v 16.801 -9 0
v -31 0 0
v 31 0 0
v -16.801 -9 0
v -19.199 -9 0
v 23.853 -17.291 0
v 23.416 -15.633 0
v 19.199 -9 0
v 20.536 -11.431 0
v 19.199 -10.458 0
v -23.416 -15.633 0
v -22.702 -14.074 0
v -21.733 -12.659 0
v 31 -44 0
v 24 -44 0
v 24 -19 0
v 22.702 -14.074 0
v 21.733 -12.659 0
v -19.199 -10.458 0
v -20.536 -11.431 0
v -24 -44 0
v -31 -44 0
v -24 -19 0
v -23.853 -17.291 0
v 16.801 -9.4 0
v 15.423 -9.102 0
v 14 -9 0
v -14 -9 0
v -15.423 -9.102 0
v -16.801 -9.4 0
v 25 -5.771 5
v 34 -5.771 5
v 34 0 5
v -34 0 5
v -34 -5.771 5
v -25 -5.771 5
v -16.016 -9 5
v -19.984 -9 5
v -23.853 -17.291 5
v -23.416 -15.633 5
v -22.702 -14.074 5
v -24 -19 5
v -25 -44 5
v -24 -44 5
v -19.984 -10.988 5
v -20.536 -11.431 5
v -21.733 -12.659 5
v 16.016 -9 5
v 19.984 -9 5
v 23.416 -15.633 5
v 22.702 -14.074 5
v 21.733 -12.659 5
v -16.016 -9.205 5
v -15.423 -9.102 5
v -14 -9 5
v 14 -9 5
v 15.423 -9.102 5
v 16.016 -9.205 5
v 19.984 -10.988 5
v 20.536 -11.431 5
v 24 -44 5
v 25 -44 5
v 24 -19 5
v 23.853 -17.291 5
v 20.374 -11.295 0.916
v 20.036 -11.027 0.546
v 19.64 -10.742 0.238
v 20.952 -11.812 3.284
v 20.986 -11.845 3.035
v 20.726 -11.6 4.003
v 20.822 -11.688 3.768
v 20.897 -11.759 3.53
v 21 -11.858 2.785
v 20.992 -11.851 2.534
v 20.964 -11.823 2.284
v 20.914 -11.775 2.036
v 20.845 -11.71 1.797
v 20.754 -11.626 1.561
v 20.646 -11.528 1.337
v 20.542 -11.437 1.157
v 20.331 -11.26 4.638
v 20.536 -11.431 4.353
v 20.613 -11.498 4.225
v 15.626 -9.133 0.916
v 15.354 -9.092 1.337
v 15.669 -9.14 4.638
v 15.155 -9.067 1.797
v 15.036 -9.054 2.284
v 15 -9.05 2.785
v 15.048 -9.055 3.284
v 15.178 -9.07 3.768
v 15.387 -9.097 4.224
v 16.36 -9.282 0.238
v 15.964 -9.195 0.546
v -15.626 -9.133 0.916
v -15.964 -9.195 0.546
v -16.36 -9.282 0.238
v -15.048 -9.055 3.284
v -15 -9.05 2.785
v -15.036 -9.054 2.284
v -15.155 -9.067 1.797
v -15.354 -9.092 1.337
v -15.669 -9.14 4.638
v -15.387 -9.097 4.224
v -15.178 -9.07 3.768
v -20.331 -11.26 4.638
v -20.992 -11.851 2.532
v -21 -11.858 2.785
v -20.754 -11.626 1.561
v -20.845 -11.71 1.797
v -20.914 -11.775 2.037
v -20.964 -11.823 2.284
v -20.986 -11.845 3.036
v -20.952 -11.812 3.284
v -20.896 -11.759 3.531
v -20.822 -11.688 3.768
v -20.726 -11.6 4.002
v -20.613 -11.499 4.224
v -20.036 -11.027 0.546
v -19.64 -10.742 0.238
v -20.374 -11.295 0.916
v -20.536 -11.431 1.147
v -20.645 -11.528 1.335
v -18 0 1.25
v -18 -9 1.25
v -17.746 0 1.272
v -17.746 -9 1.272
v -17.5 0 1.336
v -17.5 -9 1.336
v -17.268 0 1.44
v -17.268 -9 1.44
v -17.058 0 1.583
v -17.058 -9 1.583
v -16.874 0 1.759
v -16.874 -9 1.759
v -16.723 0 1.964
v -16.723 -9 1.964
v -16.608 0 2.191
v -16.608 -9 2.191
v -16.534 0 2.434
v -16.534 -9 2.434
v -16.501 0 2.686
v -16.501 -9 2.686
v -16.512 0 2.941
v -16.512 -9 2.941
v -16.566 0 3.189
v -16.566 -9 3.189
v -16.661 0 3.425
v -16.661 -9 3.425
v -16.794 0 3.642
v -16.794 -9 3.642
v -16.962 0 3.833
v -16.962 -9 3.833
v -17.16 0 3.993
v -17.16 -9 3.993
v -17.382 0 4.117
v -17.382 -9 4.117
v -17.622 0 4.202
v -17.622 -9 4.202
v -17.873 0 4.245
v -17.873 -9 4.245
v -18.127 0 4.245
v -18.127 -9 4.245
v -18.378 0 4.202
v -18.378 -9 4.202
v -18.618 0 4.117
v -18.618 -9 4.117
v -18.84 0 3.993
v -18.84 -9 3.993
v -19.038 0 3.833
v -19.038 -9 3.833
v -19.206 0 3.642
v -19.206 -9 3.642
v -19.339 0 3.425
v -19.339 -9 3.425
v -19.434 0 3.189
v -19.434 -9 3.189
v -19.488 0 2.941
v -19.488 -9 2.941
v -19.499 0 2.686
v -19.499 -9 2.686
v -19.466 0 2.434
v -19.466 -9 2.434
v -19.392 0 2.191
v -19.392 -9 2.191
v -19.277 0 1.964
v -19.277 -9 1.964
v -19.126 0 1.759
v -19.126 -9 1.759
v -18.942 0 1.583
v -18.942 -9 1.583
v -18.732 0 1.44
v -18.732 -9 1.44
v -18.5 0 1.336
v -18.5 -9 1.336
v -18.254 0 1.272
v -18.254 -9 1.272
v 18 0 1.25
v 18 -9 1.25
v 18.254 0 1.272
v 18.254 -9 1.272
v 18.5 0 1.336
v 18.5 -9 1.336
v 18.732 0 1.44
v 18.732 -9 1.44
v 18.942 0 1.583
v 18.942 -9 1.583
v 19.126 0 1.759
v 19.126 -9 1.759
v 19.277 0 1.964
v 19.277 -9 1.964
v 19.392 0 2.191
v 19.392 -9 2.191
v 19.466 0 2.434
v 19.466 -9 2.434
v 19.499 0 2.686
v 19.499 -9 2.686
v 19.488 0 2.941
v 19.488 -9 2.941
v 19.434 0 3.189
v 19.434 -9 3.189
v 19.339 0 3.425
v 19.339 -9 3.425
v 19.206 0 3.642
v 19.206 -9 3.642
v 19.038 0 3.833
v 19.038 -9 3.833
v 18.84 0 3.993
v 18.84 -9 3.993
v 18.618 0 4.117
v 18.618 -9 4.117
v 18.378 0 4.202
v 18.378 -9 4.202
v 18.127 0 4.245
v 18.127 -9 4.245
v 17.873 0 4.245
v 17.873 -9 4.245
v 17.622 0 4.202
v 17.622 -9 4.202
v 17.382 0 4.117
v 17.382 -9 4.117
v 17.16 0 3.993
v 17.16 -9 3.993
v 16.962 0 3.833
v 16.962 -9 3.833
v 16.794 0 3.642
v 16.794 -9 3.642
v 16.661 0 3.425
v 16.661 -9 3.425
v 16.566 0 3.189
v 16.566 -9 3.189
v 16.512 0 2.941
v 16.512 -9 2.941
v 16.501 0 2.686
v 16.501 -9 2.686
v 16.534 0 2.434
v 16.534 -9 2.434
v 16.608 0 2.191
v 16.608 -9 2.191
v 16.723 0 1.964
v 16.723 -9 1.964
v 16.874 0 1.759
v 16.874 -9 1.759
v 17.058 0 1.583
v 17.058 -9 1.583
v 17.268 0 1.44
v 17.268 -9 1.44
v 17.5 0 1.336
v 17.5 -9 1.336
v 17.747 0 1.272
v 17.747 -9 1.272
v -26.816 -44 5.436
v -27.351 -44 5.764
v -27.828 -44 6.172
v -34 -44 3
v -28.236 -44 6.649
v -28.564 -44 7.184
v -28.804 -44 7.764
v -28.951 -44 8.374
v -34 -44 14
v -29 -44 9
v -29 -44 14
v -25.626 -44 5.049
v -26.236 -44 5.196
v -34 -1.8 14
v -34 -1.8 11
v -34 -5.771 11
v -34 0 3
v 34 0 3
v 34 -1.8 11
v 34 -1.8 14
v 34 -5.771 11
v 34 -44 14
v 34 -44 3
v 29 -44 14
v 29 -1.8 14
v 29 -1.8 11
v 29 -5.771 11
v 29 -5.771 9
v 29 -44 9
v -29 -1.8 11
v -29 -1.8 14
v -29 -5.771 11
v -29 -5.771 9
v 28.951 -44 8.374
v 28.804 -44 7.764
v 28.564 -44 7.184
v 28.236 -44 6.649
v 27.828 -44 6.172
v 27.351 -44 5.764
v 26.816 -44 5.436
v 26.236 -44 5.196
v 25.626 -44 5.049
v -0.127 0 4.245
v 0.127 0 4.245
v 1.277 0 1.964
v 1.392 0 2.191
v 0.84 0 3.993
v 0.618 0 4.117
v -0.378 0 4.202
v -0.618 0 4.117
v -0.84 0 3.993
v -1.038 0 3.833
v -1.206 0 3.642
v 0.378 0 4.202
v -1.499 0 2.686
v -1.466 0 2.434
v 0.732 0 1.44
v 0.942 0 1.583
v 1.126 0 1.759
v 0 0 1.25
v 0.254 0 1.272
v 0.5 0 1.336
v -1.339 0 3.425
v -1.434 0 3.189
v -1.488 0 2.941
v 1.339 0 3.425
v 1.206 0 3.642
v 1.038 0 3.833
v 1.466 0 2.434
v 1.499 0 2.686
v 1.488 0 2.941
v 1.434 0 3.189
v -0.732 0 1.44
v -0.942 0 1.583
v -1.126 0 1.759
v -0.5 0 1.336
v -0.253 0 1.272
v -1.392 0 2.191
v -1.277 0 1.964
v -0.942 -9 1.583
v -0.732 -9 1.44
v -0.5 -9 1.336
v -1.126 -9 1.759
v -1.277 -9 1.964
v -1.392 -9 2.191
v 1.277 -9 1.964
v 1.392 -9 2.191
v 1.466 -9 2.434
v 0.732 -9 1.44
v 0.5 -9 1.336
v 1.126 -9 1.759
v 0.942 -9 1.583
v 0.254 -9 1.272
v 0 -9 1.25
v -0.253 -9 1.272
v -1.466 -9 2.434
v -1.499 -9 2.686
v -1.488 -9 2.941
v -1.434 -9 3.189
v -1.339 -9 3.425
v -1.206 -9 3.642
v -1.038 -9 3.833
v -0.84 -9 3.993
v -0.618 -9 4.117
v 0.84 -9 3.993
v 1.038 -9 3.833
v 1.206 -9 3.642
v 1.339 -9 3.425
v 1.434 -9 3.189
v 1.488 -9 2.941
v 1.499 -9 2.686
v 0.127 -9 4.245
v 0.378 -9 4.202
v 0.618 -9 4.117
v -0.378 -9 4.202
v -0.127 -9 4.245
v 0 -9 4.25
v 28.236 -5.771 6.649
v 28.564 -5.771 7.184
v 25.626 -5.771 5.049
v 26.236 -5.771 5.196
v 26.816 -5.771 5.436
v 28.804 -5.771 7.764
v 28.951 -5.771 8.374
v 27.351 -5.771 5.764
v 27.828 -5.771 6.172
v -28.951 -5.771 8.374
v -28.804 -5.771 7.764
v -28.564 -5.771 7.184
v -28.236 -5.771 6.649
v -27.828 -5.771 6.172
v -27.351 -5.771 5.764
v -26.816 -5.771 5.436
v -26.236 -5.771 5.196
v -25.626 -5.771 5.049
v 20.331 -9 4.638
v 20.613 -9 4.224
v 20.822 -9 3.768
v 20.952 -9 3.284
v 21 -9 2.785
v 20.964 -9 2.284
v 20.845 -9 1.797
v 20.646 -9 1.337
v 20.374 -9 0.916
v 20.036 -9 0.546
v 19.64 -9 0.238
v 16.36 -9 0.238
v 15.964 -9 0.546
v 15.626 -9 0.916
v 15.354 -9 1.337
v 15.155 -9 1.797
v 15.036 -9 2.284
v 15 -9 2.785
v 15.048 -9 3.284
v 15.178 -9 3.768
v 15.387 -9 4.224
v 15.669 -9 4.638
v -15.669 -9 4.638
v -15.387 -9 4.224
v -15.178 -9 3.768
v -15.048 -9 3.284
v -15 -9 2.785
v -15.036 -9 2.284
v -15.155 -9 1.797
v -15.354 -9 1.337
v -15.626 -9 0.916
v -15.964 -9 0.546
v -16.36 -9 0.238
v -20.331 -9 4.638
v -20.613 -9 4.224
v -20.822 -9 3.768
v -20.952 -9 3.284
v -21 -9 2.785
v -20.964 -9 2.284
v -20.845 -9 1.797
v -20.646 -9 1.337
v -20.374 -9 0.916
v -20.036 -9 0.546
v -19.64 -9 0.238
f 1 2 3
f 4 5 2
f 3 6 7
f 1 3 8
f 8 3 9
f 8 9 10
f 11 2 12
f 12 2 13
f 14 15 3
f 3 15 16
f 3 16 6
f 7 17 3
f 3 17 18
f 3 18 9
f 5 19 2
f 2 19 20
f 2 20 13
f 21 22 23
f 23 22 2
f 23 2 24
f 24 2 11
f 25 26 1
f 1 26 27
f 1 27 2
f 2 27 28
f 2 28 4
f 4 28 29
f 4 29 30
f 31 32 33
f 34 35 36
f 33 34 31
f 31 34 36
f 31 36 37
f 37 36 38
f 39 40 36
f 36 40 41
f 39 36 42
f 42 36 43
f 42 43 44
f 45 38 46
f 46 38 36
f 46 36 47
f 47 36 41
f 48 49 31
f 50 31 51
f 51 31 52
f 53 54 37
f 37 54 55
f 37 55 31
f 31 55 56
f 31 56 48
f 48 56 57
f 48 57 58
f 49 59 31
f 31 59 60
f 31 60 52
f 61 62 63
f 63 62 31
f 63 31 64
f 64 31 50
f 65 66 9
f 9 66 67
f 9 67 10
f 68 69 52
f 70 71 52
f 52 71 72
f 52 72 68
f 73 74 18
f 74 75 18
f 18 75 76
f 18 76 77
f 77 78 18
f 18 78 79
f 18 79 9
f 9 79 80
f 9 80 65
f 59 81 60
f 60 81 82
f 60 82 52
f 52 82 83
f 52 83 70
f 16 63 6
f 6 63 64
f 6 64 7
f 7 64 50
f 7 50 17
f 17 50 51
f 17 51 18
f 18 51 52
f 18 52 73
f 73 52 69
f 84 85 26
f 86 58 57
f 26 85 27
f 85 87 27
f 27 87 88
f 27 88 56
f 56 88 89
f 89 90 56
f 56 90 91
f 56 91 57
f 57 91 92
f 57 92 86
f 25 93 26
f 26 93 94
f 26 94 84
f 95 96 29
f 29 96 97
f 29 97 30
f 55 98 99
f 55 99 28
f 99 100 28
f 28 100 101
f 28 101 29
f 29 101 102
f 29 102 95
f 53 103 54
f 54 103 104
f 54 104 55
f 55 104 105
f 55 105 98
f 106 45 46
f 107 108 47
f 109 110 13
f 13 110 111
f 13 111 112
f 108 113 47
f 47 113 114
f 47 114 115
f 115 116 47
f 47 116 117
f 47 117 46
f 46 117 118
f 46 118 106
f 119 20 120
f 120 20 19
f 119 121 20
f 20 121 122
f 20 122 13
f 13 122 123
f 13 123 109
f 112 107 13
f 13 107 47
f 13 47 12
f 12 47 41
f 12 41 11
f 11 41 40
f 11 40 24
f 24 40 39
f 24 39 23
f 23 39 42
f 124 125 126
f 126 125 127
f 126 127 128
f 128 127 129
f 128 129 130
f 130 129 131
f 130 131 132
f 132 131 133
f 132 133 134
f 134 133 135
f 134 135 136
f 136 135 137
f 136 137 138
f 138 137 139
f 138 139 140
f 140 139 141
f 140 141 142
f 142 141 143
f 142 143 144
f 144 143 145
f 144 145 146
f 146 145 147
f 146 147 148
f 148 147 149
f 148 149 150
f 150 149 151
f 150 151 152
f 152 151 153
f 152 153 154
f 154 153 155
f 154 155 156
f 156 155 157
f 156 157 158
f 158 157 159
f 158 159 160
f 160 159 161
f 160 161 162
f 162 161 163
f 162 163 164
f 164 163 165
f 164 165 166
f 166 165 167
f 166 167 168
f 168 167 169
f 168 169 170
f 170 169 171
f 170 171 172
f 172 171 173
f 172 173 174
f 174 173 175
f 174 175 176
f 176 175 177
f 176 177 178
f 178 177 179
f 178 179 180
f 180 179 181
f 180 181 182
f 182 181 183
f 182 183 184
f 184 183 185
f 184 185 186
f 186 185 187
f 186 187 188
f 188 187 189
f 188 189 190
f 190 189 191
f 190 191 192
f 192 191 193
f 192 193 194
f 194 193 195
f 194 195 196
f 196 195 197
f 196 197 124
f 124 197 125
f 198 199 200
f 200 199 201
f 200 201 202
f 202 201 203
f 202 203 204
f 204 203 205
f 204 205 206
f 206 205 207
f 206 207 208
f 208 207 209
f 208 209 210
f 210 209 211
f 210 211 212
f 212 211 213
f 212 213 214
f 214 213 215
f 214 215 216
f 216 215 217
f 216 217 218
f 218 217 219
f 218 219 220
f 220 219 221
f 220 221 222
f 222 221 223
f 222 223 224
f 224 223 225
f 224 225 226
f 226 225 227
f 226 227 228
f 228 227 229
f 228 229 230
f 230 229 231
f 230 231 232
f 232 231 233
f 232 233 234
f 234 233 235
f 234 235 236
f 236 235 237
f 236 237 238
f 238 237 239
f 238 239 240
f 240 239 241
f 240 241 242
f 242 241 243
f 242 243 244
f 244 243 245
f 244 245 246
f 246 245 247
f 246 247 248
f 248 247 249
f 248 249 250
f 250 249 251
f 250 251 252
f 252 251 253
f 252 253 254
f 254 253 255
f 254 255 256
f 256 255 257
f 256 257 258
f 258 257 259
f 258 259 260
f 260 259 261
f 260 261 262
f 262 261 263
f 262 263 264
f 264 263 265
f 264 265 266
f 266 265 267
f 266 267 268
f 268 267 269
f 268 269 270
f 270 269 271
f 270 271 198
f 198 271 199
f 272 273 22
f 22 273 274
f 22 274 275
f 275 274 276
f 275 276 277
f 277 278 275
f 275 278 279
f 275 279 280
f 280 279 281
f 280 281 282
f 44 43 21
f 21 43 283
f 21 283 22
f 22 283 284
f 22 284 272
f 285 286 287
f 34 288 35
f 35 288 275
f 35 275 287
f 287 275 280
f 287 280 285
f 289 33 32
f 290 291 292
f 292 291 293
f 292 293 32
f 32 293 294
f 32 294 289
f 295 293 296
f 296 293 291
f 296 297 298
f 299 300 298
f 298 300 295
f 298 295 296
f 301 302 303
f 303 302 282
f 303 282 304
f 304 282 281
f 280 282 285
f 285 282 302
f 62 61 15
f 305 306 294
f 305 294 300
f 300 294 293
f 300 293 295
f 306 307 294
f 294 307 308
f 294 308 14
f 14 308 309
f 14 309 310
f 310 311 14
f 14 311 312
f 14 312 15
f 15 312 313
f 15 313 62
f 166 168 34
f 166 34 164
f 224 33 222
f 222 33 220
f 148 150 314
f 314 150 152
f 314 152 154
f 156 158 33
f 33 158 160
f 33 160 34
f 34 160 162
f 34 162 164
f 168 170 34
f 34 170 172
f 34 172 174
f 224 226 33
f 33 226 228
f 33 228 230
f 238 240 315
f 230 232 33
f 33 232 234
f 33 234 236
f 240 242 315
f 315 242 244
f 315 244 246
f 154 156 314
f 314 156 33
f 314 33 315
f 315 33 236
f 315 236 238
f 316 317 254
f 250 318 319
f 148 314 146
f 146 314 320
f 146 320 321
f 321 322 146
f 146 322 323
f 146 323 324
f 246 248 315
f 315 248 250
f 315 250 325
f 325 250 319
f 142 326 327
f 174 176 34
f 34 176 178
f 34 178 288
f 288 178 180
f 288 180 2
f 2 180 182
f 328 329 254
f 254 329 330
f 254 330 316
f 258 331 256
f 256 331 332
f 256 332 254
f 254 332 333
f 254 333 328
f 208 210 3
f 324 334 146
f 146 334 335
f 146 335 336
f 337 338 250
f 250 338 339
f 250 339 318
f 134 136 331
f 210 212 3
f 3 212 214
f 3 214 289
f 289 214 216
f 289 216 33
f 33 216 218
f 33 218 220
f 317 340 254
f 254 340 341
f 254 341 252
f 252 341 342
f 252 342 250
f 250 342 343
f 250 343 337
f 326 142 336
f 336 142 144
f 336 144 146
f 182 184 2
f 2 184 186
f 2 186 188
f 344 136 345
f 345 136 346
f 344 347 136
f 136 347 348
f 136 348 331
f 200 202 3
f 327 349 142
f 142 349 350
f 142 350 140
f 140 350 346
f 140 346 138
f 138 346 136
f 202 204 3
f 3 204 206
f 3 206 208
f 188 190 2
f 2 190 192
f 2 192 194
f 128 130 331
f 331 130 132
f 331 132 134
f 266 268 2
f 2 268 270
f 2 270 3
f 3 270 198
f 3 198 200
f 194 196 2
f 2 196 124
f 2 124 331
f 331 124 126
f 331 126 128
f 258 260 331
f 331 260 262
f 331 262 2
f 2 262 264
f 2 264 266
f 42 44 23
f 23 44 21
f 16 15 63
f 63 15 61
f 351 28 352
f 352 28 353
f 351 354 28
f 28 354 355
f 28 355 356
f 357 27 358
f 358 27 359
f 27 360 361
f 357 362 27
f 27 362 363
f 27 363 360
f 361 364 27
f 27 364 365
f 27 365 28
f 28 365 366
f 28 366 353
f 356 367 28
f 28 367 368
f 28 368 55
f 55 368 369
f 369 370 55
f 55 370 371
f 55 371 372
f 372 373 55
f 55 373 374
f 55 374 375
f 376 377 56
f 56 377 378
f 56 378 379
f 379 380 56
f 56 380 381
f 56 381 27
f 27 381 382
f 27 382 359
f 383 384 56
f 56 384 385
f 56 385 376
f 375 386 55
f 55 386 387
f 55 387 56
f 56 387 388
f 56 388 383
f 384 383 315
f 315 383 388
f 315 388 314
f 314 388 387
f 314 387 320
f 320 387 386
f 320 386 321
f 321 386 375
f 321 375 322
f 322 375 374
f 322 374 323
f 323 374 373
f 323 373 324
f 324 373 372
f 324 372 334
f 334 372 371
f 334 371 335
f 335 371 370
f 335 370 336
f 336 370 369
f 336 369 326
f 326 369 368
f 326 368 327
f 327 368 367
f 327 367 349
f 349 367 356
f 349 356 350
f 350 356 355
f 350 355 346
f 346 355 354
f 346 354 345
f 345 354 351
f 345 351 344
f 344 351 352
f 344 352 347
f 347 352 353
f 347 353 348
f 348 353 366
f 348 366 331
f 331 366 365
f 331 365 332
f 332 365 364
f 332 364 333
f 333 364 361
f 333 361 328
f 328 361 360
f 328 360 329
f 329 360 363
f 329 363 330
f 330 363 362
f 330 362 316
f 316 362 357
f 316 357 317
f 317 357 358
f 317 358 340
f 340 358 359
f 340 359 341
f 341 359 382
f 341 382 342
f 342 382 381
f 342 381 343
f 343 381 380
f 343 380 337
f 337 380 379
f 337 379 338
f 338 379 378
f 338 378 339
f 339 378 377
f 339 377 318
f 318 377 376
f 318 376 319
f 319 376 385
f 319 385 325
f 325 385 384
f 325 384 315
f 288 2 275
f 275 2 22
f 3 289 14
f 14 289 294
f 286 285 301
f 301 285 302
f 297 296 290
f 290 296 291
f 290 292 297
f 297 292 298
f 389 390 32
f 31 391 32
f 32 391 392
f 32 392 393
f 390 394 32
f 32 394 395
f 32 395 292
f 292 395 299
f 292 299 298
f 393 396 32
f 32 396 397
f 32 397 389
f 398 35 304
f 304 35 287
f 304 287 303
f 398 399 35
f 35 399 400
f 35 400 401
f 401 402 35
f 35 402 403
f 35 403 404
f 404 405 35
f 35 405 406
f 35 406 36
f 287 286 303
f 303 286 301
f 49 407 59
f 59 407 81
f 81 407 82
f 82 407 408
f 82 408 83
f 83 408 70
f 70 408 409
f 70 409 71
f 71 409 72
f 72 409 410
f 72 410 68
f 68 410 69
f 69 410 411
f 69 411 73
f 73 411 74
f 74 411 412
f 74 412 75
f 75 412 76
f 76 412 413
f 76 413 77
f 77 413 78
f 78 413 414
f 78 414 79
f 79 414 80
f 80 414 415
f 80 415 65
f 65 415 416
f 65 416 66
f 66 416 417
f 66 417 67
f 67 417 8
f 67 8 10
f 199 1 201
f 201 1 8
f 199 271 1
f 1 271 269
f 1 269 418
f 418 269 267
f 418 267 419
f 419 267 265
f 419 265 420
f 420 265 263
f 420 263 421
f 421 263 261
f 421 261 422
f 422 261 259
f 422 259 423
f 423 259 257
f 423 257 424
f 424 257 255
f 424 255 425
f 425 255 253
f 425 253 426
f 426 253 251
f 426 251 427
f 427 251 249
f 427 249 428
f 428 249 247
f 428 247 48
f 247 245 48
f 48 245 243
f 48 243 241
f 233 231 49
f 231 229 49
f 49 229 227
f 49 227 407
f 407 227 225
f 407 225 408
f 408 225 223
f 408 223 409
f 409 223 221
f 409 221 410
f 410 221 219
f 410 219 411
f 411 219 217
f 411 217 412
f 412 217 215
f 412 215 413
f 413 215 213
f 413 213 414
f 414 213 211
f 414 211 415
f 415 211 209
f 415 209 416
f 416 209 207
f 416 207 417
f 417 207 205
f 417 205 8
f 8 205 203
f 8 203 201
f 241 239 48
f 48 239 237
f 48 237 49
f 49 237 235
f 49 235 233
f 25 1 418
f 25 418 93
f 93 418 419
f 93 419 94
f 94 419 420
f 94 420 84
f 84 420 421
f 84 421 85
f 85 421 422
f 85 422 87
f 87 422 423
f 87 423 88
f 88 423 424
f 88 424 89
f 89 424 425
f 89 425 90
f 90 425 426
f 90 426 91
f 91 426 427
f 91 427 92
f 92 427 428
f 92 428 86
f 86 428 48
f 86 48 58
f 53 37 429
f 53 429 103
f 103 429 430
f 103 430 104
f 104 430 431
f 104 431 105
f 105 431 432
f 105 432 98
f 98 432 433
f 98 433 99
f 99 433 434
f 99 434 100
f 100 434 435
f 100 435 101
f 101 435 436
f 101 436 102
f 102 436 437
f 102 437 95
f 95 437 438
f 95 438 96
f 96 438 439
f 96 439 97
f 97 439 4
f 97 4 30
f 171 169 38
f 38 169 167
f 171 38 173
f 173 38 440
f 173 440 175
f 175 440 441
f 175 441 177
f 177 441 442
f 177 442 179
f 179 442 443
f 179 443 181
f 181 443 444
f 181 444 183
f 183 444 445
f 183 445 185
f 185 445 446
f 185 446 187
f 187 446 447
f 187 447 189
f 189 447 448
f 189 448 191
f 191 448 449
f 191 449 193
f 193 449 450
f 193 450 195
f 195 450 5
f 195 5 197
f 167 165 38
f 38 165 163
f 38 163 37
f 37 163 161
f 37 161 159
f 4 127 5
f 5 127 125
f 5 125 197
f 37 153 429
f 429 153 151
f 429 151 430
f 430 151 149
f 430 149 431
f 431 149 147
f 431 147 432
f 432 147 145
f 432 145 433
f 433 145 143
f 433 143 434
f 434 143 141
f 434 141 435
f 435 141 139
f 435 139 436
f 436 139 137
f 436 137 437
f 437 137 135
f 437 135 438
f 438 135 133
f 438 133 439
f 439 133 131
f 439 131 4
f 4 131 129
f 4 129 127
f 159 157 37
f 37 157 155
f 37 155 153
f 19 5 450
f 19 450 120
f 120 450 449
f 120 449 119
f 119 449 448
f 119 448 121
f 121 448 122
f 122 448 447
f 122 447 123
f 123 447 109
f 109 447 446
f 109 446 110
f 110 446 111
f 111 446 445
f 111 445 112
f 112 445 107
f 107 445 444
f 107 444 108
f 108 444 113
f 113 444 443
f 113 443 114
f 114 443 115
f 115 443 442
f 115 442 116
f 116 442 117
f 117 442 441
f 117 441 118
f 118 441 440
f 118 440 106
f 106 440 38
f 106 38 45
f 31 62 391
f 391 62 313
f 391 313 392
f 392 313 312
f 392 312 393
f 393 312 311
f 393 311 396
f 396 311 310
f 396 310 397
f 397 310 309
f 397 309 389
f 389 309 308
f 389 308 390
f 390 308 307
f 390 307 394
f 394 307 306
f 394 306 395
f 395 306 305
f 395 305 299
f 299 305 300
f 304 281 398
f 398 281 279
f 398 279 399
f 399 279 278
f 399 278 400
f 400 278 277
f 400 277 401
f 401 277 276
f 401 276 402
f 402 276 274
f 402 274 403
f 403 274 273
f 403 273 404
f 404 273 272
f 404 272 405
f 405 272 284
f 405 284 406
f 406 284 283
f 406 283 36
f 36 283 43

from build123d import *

# Parameters (mm, degrees)
BOSS_EXTRUDE1_DEPTH     = 44
SKETCH2_W               = 48
SKETCH2_H               = 35
CUT_EXTRUDE1_DEPTH      = 15
FILLET1_R               = 10
SKETCH3_R               = 1.5
CUT_EXTRUDE2_DEPTH      = 36
CUT_EXTRUDE2_DEPTH_BACK = 10
CHAMFER1_SIZE           = 3
SKETCH4_W               = 9
SKETCH4_H               = 1.8
CUT_EXTRUDE3_DEPTH      = 35
CUT_EXTRUDE3_DEPTH_BACK = 35
SKETCH5_W               = 6
SKETCH5_H               = 3.971430967
CUT_EXTRUDE4_DEPTH      = 35
CUT_EXTRUDE4_DEPTH_BACK = 35
SKETCH6_R               = 3
CUT_EXTRUDE6_DEPTH      = 11
FILLET2_R               = 4


with BuildPart() as part:
    # Sketch1 → Boss-Extrude1 (new body)
    with BuildSketch(Plane(origin=(0, 0, 0), x_dir=(1, 0, 0), z_dir=(0, 1, 0))):
        Polygon((34, 0), (-34, 0), (-34, -14), (-29, -14), (-29, -5), (29, -5), (29, -14), (34, -14), align=None)
    extrude(amount=-BOSS_EXTRUDE1_DEPTH)

    # Sketch2 → Cut-Extrude1 (cut, through all)
    with BuildSketch(Plane(origin=(0, 0, 0), x_dir=(-1, 0, 0), z_dir=(0, 0, -1))):
        with Locations((0, -26.5)):
            Rectangle(SKETCH2_W, SKETCH2_H)
    extrude(amount=-CUT_EXTRUDE1_DEPTH, mode=Mode.SUBTRACT)

    # Fillet1
    fillet1_edges = [part.edges().sort_by_distance(p)[0] for p in [
        (-24, -9, 2.5),
        (24, -9, 2.5),
    ]]
    fillet(fillet1_edges, radius=FILLET1_R)

    # Sketch3 → Cut-Extrude2 (cut, two sides)
    with BuildSketch(Plane.XZ.offset(9)) as cut_extrude2_sk:
        with Locations((0, 2.75)):
            Circle(SKETCH3_R)
        with Locations((-18, 2.75)):
            Circle(SKETCH3_R)
        with Locations((18, 2.75)):
            Circle(SKETCH3_R)
    extrude(amount=CUT_EXTRUDE2_DEPTH, mode=Mode.SUBTRACT)
    extrude(cut_extrude2_sk.sketch, amount=-CUT_EXTRUDE2_DEPTH_BACK, mode=Mode.SUBTRACT)

    # Chamfer1
    chamfer1_edges = [part.edges().sort_by_distance(p)[0] for p in [
        (-34, -22, 0),
        (34, -22, 0),
    ]]
    chamfer(chamfer1_edges, length=CHAMFER1_SIZE)

    # Sketch4 → Cut-Extrude3 (cut, two sides)
    with BuildSketch(Plane(origin=(0, 0, 0), x_dir=(0, 0, -1), z_dir=(1, 0, 0))) as cut_extrude3_sk:
        with Locations((-9.5, -0.9)):
            Rectangle(SKETCH4_W, SKETCH4_H)
    extrude(amount=CUT_EXTRUDE3_DEPTH, mode=Mode.SUBTRACT)
    extrude(cut_extrude3_sk.sketch, amount=-CUT_EXTRUDE3_DEPTH_BACK, mode=Mode.SUBTRACT)

    # Sketch5 → Cut-Extrude4 (cut, two sides)
    with BuildSketch(Plane(origin=(0, 0, 0), x_dir=(0, 0, -1), z_dir=(1, 0, 0))) as cut_extrude4_sk:
        with Locations((-8, -3.785715484)):
            Rectangle(SKETCH5_W, SKETCH5_H)
    extrude(amount=CUT_EXTRUDE4_DEPTH, mode=Mode.SUBTRACT)
    extrude(cut_extrude4_sk.sketch, amount=-CUT_EXTRUDE4_DEPTH_BACK, mode=Mode.SUBTRACT)

    # Sketch6 → Cut-Extrude6 (cut)
    with BuildSketch(Plane.XZ.offset(9)):
        with Locations((0, 2.75)):
            Circle(SKETCH6_R)
        with Locations((18, 2.75)):
            Circle(SKETCH6_R)
        with Locations((-18, 2.75)):
            Circle(SKETCH6_R)
    extrude(amount=CUT_EXTRUDE6_DEPTH, mode=Mode.SUBTRACT)

    # Fillet2
    fillet2_edges = [part.edges().sort_by_distance(p)[0] for p in [
        (29, -24.885715483, 5),
        (-29, -24.885715483, 5),
    ]]
    fillet(fillet2_edges, radius=FILLET2_R)


solid = part.part
